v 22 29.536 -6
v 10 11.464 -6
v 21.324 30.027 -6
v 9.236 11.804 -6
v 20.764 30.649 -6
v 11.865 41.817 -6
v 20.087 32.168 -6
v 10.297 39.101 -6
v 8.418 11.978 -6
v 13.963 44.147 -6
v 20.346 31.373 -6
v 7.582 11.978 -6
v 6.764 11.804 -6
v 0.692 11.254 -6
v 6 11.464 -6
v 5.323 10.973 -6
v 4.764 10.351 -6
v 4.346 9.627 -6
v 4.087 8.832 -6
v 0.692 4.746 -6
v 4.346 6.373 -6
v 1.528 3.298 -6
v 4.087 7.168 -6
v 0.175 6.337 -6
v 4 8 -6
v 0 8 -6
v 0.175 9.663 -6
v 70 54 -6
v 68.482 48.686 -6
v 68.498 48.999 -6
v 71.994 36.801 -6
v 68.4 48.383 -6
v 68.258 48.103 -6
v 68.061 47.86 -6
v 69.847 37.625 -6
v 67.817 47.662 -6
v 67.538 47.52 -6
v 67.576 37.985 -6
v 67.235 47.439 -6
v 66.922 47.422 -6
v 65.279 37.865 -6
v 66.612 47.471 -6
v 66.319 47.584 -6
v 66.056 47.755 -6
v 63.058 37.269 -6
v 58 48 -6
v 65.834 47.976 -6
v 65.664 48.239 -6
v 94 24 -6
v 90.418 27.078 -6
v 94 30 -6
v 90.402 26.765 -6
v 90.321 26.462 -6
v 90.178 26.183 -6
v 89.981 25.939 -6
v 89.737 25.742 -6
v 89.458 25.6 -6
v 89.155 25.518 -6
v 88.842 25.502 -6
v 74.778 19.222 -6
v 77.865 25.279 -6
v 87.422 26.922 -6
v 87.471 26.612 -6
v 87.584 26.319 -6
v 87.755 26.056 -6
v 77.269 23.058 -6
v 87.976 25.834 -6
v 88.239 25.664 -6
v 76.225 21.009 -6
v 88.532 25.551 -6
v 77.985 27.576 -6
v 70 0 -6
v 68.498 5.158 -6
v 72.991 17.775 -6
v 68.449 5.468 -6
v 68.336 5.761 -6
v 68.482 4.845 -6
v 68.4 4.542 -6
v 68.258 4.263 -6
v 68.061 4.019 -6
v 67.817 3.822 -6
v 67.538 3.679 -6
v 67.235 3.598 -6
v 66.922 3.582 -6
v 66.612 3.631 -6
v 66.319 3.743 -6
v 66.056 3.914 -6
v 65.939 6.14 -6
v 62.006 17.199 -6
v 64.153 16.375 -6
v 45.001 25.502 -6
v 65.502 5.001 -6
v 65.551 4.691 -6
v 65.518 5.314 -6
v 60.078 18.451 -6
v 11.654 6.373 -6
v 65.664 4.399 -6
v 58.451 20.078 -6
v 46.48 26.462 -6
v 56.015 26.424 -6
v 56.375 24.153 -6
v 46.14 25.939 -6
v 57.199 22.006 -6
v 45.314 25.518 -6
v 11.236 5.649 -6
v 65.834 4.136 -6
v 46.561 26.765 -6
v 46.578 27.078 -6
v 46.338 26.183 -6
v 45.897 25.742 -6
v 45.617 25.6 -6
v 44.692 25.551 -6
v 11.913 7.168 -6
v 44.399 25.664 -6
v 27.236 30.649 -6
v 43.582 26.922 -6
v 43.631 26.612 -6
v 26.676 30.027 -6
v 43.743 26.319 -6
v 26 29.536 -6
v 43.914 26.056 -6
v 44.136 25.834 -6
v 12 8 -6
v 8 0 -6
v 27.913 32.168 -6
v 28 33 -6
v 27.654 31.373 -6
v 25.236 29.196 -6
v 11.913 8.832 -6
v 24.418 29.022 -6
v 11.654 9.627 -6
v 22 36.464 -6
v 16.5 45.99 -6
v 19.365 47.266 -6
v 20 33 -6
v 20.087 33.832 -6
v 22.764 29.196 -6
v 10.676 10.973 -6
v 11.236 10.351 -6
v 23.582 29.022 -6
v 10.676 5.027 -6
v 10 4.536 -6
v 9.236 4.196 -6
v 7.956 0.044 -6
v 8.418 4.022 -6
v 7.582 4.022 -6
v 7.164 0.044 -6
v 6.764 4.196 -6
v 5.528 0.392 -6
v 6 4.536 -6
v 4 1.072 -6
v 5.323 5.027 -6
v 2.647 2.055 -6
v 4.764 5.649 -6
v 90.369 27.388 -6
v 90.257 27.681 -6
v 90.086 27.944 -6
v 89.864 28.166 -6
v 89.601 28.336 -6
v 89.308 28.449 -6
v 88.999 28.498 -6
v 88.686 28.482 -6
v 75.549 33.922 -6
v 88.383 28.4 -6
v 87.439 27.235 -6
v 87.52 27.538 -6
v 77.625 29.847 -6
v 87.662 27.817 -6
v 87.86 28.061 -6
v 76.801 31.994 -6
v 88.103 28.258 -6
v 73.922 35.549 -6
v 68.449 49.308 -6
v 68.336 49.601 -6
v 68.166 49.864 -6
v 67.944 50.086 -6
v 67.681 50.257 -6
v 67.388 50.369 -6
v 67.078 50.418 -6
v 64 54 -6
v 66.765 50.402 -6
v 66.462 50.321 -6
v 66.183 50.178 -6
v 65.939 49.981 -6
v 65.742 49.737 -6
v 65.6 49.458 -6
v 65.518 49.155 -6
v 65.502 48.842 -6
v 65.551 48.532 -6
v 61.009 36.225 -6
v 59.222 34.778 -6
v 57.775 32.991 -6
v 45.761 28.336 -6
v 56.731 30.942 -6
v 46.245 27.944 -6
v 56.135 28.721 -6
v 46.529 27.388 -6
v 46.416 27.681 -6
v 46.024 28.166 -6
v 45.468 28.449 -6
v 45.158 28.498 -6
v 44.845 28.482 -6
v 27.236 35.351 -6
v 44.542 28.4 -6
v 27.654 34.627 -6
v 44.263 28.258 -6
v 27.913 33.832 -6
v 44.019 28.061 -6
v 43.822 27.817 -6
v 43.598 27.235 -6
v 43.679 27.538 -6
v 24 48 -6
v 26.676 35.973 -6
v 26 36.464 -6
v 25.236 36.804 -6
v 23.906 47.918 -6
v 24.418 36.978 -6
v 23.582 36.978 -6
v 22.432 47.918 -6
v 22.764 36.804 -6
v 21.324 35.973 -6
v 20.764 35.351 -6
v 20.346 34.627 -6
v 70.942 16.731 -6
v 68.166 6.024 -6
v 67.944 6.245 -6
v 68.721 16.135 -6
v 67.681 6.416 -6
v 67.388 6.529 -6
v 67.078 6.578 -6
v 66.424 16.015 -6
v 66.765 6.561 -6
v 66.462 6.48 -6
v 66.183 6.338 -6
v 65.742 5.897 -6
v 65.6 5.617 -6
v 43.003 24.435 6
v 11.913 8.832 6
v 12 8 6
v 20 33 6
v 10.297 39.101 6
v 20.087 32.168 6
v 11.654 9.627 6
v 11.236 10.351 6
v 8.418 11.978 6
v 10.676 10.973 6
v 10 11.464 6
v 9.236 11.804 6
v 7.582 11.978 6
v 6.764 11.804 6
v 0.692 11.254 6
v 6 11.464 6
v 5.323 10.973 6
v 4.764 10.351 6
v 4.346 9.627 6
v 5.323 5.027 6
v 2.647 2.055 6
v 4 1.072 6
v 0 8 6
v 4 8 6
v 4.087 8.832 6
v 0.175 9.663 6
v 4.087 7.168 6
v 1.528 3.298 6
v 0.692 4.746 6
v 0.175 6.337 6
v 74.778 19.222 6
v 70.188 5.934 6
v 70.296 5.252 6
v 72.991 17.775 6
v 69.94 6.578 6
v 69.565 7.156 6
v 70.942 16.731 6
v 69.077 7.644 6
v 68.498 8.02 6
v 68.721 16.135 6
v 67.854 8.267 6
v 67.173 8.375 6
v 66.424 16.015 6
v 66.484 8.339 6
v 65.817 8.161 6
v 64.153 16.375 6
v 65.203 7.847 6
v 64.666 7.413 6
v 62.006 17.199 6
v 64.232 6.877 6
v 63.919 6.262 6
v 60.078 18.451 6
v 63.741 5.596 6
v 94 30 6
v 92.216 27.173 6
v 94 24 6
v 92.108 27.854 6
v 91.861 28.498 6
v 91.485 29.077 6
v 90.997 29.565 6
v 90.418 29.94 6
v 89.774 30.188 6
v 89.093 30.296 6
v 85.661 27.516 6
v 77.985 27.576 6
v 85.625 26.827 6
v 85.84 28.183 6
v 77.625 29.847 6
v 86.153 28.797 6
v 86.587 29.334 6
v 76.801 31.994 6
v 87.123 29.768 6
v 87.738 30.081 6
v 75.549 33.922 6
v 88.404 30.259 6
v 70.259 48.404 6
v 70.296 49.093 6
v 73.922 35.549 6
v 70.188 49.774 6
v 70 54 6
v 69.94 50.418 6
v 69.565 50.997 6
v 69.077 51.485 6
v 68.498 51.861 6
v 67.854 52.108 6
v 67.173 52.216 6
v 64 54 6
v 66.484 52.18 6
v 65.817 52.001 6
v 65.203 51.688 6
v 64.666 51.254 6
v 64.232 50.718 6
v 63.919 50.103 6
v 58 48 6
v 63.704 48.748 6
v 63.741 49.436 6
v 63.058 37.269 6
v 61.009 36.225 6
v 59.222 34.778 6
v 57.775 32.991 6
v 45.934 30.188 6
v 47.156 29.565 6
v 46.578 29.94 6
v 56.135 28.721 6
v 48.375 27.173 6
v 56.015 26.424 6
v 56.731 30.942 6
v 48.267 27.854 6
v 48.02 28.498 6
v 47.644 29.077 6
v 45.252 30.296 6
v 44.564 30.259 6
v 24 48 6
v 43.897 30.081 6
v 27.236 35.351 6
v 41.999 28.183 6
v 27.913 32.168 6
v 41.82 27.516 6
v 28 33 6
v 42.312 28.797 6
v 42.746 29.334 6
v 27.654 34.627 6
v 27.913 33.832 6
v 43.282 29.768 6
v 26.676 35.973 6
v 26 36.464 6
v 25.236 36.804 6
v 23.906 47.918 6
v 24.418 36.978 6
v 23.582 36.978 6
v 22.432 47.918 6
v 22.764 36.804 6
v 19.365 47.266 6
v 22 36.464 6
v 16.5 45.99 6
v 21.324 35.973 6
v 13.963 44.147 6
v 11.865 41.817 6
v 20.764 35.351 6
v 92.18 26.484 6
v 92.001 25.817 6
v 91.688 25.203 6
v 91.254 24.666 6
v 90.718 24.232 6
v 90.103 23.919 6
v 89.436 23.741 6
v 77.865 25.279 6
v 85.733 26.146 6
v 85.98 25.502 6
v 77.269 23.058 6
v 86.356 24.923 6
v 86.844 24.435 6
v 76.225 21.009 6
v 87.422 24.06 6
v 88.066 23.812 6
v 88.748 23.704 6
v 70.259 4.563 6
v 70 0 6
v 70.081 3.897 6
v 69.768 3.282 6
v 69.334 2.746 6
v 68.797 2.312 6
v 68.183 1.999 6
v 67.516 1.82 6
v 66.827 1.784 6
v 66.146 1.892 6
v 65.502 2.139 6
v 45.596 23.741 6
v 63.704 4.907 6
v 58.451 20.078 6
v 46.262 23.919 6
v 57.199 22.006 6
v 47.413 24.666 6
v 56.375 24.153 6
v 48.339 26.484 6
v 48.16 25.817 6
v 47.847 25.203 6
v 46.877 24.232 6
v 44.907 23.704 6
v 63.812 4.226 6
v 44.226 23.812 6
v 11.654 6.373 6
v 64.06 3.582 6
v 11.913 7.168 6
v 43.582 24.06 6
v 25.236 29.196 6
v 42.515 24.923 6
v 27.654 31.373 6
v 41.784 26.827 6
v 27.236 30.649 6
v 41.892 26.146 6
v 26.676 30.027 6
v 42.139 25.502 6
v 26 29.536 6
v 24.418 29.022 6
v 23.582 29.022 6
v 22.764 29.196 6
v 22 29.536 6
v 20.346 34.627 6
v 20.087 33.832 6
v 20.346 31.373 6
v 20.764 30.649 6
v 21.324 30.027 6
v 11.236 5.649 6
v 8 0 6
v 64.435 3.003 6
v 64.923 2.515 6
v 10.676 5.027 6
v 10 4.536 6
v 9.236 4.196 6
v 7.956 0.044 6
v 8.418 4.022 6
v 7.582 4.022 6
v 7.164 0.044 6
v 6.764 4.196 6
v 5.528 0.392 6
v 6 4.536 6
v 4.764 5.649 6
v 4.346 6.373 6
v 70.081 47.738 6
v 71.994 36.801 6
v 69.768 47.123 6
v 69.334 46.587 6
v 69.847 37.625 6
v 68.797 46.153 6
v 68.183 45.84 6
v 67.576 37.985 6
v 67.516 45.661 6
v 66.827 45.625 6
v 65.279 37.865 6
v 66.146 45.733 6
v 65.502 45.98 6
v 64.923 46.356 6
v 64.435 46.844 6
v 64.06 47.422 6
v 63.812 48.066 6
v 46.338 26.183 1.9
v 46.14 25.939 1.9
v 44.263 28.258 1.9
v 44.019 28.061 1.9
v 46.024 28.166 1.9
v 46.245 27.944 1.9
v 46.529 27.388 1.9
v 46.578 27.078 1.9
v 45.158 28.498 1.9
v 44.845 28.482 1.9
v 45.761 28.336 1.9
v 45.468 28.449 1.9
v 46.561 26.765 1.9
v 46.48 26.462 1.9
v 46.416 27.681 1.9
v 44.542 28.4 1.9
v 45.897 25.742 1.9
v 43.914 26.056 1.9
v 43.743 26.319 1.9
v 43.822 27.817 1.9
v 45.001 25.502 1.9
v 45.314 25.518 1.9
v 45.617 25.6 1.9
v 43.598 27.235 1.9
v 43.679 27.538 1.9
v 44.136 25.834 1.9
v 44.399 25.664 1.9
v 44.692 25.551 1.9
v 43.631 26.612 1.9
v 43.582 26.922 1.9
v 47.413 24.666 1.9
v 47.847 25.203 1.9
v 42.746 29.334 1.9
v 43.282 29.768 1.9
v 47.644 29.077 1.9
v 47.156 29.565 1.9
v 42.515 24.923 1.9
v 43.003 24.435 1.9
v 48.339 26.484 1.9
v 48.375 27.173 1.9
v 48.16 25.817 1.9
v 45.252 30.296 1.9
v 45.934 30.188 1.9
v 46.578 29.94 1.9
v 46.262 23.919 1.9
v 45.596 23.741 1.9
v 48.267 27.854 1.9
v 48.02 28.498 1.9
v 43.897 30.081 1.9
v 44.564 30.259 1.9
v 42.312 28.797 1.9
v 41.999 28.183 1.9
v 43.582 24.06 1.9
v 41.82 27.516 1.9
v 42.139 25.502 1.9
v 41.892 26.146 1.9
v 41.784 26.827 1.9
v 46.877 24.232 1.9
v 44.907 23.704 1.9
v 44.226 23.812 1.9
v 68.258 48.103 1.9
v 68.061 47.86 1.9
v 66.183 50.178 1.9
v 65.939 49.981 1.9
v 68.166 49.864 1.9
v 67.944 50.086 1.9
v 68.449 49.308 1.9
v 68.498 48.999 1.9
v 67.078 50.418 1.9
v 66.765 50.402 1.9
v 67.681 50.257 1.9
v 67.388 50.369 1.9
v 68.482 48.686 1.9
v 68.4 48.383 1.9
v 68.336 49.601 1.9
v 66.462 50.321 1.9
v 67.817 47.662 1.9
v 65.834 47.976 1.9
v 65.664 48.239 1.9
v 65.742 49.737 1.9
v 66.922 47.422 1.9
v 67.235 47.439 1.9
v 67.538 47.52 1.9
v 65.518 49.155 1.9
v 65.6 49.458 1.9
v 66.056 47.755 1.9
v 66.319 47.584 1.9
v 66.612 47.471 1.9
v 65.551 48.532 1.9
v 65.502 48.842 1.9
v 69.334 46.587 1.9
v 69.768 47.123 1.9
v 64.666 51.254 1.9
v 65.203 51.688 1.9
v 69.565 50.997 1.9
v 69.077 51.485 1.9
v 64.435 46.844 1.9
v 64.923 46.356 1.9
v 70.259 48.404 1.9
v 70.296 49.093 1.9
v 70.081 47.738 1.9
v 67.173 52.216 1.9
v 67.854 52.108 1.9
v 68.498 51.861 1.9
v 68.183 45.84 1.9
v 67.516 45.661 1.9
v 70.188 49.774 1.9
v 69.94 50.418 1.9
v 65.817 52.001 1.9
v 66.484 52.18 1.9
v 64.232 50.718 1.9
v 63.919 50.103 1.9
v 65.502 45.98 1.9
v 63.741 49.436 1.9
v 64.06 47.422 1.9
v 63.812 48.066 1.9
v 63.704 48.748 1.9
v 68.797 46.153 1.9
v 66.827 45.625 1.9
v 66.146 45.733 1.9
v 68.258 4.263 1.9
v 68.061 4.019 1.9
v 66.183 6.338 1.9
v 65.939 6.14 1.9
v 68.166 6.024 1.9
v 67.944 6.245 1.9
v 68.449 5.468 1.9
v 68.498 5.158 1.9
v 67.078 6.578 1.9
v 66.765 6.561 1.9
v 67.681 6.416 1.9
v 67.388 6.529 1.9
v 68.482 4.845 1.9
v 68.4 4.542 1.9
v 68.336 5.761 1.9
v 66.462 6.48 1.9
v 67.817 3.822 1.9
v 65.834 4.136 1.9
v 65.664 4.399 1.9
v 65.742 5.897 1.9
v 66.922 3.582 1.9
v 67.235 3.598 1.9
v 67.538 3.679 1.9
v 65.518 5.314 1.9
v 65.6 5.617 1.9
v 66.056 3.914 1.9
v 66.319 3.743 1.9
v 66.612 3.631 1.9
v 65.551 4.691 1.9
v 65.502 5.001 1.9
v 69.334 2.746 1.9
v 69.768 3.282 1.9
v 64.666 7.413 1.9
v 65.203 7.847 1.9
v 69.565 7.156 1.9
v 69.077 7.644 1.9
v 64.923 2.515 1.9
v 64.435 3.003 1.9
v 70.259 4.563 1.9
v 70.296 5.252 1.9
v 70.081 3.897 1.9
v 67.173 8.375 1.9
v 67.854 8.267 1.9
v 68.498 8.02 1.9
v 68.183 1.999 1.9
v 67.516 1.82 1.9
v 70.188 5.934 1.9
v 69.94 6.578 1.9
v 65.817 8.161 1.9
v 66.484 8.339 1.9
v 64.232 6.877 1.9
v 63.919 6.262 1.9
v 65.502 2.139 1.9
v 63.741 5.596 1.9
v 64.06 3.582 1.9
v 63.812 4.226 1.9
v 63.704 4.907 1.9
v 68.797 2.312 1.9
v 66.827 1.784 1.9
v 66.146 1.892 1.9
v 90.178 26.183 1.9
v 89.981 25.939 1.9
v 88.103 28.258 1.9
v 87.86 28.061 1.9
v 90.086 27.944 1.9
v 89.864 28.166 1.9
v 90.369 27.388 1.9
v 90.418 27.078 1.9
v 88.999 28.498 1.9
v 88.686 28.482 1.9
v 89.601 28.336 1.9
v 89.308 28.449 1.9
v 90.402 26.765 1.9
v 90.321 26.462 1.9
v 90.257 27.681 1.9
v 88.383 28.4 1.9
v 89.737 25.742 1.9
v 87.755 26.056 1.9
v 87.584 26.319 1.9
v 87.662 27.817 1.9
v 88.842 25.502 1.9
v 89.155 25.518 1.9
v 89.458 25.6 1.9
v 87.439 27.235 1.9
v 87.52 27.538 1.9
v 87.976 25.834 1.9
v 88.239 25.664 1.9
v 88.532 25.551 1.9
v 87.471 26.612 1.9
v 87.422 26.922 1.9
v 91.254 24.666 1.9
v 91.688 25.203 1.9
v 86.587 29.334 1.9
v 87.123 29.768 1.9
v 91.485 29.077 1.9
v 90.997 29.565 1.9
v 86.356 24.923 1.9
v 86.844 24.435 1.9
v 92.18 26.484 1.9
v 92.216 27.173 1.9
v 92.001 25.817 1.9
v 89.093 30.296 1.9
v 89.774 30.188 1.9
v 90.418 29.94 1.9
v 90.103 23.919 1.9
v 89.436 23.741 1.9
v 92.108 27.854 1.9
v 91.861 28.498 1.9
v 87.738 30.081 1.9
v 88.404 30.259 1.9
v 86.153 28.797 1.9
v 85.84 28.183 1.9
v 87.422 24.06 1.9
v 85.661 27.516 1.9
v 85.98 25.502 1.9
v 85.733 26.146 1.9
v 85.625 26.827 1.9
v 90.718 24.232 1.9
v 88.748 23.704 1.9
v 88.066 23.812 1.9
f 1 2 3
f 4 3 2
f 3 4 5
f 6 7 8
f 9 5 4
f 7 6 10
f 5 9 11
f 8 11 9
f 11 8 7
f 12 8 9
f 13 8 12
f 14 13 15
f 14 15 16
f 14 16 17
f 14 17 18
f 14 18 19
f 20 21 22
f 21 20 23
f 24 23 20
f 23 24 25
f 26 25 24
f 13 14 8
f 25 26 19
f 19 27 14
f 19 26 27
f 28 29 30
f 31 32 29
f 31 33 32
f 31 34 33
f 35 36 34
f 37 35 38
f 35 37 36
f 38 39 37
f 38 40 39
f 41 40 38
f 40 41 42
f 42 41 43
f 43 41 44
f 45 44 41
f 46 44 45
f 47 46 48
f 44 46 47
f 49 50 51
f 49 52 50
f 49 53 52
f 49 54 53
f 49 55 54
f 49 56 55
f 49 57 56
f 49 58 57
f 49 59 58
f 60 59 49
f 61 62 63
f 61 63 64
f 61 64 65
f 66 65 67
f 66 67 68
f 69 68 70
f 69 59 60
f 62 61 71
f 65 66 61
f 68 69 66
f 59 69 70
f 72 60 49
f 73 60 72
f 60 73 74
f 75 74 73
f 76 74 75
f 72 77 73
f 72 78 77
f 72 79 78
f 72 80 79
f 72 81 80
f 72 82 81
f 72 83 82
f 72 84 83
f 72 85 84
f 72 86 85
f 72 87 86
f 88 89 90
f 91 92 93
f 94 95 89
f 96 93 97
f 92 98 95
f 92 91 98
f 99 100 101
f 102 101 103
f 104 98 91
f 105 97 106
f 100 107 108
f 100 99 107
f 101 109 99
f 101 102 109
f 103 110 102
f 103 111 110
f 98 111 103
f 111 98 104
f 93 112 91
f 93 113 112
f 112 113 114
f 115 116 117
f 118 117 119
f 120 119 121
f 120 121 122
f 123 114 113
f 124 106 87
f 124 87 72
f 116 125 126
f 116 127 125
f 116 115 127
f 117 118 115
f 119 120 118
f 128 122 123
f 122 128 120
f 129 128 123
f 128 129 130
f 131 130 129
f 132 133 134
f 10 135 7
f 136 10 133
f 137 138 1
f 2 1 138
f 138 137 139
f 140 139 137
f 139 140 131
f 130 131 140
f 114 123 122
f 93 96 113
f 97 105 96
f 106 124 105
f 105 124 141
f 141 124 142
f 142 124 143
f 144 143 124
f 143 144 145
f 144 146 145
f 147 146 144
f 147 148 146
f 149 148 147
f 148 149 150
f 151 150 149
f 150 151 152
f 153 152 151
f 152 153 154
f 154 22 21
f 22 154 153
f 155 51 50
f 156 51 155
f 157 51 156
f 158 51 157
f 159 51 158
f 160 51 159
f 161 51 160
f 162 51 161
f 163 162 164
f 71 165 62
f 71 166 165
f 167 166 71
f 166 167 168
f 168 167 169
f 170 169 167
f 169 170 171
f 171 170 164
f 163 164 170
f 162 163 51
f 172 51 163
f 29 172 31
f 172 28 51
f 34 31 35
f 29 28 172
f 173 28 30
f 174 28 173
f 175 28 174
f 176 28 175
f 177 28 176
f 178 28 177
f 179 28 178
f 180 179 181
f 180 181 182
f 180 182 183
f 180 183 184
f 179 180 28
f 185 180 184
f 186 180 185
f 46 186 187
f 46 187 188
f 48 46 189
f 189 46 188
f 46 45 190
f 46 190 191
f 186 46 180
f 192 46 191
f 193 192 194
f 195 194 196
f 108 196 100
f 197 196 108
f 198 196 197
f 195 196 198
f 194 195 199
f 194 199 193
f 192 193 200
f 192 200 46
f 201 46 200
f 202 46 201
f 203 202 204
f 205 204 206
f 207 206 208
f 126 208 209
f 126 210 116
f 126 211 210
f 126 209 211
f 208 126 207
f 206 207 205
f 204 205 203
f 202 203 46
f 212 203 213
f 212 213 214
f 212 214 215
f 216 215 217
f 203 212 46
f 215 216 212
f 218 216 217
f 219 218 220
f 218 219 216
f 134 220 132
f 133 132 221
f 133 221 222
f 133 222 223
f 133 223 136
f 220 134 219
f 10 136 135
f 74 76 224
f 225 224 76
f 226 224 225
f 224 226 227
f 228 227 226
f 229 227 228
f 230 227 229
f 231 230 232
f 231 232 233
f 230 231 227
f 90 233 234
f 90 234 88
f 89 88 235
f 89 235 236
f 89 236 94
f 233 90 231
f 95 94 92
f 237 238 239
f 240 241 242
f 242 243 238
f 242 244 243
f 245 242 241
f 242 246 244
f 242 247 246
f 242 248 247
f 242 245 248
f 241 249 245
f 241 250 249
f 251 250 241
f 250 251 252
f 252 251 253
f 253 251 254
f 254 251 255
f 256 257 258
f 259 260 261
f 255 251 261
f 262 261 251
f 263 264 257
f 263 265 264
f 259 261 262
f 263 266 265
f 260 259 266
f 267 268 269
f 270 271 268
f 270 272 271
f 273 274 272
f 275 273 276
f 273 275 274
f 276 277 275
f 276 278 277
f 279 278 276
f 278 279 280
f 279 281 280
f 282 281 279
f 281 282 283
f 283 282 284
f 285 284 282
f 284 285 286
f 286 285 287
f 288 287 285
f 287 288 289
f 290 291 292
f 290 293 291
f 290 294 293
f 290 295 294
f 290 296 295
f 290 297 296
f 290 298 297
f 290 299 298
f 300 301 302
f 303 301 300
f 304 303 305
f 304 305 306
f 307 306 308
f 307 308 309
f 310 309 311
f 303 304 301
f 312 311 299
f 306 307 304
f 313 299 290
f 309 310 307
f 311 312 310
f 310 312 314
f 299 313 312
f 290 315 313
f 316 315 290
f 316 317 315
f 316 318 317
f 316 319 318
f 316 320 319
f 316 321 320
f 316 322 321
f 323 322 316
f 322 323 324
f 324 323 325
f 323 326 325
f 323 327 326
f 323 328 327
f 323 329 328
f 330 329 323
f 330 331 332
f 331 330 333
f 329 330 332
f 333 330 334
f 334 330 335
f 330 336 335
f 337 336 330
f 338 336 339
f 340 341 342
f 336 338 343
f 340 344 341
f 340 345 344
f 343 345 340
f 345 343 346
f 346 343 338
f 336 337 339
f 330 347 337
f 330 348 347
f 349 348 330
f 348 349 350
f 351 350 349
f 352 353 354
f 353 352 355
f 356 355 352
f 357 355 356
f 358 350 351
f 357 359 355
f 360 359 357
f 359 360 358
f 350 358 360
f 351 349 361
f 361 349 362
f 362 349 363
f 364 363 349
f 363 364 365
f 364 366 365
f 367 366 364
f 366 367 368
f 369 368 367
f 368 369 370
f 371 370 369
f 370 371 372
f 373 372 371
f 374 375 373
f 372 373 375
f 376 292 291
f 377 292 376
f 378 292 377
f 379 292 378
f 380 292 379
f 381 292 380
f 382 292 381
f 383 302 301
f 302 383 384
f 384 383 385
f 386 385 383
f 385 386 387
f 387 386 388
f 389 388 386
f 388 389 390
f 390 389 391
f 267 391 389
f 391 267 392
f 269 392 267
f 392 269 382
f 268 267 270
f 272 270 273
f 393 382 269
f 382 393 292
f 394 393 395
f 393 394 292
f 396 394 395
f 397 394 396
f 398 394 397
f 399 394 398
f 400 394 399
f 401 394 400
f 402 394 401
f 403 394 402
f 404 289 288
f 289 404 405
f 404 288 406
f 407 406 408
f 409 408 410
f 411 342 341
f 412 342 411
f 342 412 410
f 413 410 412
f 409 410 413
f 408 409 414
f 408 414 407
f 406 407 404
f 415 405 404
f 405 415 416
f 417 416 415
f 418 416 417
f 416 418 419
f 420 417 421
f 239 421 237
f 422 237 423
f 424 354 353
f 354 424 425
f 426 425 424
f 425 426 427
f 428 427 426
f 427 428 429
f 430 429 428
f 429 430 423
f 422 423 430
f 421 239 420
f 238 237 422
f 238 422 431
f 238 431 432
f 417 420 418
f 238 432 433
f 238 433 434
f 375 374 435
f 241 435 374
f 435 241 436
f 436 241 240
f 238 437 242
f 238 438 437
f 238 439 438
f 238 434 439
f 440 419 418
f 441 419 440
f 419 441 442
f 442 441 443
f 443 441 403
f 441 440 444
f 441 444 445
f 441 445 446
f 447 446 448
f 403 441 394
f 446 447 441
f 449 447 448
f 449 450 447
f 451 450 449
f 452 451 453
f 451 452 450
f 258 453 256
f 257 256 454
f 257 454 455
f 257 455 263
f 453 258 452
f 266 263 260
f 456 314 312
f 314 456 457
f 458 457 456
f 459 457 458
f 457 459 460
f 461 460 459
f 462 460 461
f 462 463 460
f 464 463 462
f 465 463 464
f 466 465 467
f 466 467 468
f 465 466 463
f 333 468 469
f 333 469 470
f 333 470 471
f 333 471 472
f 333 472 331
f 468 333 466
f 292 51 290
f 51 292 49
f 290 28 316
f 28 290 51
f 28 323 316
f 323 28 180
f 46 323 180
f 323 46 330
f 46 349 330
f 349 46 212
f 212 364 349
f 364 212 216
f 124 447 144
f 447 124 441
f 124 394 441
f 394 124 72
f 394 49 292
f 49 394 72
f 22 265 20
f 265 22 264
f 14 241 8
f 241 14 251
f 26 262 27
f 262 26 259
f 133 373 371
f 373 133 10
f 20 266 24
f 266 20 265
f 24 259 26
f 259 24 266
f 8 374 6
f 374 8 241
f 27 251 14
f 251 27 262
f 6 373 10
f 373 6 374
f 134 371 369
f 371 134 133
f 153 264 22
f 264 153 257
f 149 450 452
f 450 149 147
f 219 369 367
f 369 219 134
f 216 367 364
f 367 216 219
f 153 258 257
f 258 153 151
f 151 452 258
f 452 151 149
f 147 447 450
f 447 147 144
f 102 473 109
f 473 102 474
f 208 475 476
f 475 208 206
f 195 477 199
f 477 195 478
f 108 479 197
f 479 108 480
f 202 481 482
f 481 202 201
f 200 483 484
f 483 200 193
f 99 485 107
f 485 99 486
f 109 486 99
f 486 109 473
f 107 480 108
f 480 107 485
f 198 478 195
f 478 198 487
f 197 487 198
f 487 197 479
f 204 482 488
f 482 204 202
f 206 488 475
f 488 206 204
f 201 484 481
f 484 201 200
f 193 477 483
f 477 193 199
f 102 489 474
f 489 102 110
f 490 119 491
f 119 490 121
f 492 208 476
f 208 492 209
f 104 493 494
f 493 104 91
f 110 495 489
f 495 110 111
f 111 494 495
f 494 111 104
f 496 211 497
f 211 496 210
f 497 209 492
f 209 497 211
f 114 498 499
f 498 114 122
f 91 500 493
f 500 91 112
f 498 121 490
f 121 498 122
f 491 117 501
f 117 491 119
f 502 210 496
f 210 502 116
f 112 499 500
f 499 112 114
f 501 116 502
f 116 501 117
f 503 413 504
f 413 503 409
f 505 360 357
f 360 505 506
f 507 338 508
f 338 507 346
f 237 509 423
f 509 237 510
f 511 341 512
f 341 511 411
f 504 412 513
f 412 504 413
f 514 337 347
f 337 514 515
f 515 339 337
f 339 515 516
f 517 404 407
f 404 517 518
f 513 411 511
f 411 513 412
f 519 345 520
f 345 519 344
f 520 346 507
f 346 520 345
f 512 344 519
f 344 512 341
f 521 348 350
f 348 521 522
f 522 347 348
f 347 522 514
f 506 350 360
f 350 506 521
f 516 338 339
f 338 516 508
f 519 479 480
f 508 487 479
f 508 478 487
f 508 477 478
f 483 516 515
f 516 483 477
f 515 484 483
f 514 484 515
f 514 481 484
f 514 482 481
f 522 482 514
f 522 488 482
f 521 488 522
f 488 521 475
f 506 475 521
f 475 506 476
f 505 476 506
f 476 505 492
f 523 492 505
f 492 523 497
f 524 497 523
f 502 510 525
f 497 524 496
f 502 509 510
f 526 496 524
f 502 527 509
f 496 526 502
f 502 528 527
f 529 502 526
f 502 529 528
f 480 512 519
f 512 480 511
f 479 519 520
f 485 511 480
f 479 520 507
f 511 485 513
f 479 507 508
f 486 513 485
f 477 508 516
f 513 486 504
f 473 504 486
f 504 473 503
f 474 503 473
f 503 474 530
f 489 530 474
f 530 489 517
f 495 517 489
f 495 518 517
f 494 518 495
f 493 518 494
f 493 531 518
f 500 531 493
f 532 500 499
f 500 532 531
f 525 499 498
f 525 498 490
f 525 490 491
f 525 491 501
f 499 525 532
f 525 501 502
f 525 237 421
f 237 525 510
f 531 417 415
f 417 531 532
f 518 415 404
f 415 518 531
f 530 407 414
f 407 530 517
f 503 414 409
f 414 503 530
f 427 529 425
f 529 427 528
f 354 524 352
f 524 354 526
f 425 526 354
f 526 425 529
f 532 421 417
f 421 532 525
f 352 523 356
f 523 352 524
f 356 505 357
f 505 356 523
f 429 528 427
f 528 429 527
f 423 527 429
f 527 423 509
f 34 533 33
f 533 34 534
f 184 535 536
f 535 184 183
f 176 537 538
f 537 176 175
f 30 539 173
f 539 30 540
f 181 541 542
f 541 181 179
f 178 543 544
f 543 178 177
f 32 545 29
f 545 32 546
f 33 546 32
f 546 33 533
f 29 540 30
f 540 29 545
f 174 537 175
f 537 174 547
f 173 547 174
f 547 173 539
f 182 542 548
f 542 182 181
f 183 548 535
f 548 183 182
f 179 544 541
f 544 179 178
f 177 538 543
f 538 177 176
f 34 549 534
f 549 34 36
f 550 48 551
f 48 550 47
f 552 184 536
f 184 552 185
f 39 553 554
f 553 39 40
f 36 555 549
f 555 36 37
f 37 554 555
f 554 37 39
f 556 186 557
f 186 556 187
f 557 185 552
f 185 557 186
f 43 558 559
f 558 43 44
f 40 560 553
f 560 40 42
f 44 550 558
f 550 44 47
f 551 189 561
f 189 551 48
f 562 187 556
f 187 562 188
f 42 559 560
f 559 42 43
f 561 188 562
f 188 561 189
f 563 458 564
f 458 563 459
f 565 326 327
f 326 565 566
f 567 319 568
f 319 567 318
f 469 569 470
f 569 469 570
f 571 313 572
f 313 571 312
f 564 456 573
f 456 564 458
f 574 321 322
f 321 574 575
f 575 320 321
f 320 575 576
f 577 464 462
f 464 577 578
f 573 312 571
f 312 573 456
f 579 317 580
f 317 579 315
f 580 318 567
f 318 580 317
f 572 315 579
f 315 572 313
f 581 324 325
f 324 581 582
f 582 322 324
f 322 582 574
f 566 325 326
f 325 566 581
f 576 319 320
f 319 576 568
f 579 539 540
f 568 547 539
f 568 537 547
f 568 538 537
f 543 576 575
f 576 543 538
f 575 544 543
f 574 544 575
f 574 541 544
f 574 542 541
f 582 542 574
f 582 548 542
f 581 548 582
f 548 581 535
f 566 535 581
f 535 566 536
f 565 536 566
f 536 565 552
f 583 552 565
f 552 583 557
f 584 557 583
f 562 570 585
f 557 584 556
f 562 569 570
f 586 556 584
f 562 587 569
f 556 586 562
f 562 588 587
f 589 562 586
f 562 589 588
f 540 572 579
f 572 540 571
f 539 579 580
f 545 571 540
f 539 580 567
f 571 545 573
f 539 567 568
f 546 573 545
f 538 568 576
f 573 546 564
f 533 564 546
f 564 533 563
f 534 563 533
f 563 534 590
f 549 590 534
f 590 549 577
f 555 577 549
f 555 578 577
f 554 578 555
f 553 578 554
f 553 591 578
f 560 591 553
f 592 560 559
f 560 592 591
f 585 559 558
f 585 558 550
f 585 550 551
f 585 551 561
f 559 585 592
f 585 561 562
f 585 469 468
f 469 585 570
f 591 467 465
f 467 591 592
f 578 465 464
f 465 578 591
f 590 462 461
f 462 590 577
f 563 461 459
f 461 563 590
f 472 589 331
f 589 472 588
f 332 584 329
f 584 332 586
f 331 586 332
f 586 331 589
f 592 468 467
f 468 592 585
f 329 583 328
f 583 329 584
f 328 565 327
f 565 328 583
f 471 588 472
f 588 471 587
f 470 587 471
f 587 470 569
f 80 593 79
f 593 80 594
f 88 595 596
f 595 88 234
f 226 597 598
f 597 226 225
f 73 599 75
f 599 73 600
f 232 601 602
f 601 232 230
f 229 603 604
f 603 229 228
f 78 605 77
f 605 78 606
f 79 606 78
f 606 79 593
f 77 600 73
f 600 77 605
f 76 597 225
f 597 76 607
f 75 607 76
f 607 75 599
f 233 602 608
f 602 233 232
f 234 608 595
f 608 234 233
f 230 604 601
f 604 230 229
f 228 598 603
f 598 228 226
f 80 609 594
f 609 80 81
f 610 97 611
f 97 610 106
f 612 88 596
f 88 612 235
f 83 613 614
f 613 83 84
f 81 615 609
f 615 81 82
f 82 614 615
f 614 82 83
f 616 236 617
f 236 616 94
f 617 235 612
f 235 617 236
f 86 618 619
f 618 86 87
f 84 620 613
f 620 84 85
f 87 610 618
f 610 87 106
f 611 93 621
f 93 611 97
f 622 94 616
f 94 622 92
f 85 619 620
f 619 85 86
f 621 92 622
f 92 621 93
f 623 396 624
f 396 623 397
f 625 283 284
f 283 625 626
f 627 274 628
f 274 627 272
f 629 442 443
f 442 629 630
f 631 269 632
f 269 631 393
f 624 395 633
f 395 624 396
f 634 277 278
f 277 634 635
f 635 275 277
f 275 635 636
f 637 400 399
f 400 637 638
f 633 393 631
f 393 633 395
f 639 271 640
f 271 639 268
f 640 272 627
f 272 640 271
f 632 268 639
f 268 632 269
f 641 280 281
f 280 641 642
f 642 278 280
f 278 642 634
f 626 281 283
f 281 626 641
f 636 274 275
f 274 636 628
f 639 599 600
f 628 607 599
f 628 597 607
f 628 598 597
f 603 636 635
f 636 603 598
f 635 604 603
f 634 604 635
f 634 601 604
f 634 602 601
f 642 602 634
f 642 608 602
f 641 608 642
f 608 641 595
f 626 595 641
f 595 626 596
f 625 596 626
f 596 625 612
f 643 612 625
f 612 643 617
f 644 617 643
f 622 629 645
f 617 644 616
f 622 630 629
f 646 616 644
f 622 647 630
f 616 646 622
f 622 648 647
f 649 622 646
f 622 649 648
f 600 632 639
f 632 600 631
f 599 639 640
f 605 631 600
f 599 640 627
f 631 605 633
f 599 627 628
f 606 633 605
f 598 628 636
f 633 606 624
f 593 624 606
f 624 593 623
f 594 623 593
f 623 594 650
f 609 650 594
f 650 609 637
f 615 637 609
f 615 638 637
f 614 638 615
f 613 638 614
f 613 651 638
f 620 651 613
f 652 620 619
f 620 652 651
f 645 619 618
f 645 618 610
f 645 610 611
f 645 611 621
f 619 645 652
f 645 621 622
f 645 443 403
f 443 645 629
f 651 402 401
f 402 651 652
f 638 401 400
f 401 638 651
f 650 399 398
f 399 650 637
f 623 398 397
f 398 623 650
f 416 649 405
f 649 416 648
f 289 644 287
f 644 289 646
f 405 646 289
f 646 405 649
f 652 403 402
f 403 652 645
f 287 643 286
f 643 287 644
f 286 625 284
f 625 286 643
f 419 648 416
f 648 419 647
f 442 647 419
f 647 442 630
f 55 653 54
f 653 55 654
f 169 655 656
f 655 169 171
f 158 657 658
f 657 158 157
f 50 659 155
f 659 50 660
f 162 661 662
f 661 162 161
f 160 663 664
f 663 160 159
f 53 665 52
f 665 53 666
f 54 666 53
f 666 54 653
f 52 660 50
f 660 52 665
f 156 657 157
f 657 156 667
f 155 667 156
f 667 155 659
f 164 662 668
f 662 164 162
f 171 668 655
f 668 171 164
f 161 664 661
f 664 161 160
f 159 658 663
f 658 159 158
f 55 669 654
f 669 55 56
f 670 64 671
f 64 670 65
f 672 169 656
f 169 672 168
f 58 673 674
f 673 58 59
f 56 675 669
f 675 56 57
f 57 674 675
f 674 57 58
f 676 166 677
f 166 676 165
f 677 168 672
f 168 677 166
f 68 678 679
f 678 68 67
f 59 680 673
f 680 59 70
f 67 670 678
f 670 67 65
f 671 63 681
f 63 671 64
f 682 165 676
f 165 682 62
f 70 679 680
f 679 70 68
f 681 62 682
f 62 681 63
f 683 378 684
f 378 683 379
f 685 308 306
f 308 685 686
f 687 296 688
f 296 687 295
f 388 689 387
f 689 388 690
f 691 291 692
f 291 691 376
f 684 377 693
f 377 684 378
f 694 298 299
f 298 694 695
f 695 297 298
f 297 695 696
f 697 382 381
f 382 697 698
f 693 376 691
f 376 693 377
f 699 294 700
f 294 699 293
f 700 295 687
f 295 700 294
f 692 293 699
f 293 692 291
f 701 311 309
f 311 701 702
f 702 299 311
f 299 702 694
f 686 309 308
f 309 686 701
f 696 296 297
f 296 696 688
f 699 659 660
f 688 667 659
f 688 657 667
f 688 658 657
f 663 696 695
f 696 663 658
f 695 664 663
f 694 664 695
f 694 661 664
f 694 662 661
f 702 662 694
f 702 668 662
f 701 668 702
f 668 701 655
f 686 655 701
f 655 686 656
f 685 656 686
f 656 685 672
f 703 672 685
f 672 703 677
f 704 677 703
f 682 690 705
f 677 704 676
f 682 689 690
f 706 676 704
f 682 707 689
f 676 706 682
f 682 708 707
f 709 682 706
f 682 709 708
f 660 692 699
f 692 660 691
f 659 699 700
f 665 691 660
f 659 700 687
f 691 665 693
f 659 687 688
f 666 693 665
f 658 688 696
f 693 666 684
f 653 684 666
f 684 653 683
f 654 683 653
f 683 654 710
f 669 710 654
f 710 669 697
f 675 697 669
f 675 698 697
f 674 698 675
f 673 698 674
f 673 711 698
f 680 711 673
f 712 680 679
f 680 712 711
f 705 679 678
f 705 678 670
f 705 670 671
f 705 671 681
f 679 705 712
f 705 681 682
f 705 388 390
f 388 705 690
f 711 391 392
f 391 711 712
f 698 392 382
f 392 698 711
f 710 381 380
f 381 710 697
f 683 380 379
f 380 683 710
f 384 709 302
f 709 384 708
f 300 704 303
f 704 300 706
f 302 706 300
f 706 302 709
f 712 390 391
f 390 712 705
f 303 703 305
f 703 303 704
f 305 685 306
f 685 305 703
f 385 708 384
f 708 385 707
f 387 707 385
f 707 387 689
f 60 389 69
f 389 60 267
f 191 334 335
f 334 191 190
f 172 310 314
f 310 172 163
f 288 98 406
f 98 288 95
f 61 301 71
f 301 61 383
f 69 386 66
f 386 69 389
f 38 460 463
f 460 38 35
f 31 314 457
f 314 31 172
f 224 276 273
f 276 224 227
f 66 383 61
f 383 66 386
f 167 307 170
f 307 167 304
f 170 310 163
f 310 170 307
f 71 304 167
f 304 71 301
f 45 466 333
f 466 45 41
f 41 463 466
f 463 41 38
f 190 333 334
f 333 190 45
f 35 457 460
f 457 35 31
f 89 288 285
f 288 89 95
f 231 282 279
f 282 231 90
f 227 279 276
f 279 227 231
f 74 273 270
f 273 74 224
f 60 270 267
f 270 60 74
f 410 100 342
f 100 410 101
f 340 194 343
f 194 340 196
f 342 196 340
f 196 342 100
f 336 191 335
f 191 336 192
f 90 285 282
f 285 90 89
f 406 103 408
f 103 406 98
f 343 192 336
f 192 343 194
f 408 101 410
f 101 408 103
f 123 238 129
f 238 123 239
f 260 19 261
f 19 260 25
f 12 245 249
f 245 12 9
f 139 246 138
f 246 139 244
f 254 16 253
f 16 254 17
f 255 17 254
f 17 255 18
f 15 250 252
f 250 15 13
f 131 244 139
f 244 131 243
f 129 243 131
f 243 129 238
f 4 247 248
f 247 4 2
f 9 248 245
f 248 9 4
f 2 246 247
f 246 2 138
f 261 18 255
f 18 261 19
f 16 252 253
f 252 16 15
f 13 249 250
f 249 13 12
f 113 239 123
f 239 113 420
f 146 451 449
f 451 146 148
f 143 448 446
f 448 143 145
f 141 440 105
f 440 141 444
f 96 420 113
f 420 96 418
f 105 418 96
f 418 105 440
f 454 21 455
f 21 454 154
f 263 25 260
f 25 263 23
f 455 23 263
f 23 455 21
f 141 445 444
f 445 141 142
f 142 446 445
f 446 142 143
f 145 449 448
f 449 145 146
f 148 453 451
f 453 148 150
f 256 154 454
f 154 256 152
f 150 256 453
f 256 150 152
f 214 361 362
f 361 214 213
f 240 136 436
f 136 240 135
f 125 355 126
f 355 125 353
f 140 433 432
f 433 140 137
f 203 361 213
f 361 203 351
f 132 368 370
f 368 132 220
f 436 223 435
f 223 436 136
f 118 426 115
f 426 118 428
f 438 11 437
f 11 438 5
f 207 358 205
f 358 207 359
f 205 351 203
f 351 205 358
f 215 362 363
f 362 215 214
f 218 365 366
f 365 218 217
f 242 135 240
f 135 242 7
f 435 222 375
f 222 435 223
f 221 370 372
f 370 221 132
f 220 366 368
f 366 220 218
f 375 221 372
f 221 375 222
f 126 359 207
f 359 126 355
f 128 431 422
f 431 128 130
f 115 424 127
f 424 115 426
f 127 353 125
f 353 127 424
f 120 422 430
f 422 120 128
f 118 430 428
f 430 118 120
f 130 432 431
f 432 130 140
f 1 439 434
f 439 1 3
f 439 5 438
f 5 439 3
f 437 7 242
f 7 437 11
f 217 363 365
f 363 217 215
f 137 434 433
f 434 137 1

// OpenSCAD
// file: ../abs/lib/halfcube.scad
// библиотечная функция - прямоугольная призма
/*
 * a - вектор [x,y,z] - куб, в который вписана призма
 * orient - строка "x"/"y"/"z" - ориентация треугольной грани призмы
 * center - логическое true/false - позиционирование относительно центра или с угла
 *
 * Автор - Andrew Answer (Андрей Нуждов): http://answe.ru
 * Сделано для проекта SibRap: http://reprap.org/wiki/SibRap
 * GitHub: https://github.com/andrewanswer/sibrap
 */
module halfcube(a, orient, center) {
	translate(center==true?-a/2:0) {
		if (orient=="x")
			polyhedron (points = [[a[0],0,a[2]], [0,0,a[2]], [0,a[1],0], [0,0,0], [a[0],0,0], [a[0],a[1],0]], faces = [[1,3,2], [4,0,5], [3,1,4], [1,2,5], [1,0,4], [0,1,5],  [5,2,4], [4,2,3]]);
		if (orient=="y")
			polyhedron (points = [[0,a[1],a[2]], [0,0,a[2]], [0,a[1],0], [0,0,0], [a[0],0,0], [a[0],a[1],0]], faces = [[1,3,2], [1,2,0], [3,1,4], [0,2,5], [1,5,4], [1,0,5],  [5,2,4], [4,2,3]]);
		if (orient=="z")
			polyhedron (points = [[0,a[1],a[2]], [0,0,a[2]], [0,a[1],0], [0,0,0], [a[0],0,0], [a[0],0,a[2]]], faces = [[1,3,2], [1,2,0], [3,1,4], [0,2,5], [1,5,4], [1,0,5],  [5,2,4], [4,2,3]]);
	}
}

// test
/*
halfcube([10,20,30],"x",true);
halfcube([10,20,30],"y",true);
halfcube([10,20,30],"z",false);
*/
// main file
use <../abs/lib/halfcube.scad>

// габариты
// ширина
x0=94;
// высота
y0=54;
// толщина
z0=12;

// от левого нижнего угла детали
// до первого отверстия по X
x1=8;
// до первого отверстия по Y
y1=8;
// до оси двигателя по X
x2=x0-27;
// до оси двигателя по Y
y2=27;

// между первым и вторым отверстием по X
x3=16;
// между первым и вторым отверстием по Y
y3=25;

// между отверстиями крепления двигателя
dx=31;

$fn=30;
DELTA=0.1;

module part13() {
difference() {
    //linear_extrude(height=8, center=true)polygon(points=[[0,0], [0,13.36], [18.97,39.94], [98-30.99-9.32,y0], [98-30.99,y0], [98,35.46], [77.53,0]], paths=[[0,1,2,3,4,5,6]]);
    union() {
        linear_extrude(height=z0, center=true)
        polygon(points=[[x1,0], [0,x1], [0.45,10], [9.15,y1+y3+2], [x1+x3,y0-6], [x2-9,y0-6], [x2-3,y0], [x0-24,y0], [x0,y0-24], [x0,24], [x0-24,0]], paths=[[0,1,2,3,4,5,6,7,8,9,10]]);
        hull() {
            translate([x1,y1,-z0/2])cylinder(r=16/2,h=z0);
            translate([x1+x3,y1+y3,-z0/2])cylinder(r=30/2,h=z0);
        }
    }
    translate([x1,y1,-z0/2-DELTA]) {
        cylinder(r=4,h=z0+DELTA*2);
        translate([x3,y3,0])cylinder(r=4,h=z0+DELTA*2);
        translate([x2-x1,y2-y1,0])rotate([0,0,-45]){
            cylinder(r=11,h=z0+DELTA*2);
            translate([-dx/2,-dx/2,0])hole();
            translate([-dx/2,dx/2,0])hole();
            translate([dx/2,-dx/2,0])hole();
            translate([dx/2,dx/2,0])hole();
        }
    }
}
}

module hole() {
  cylinder(r=1.5,h=z0+DELTA*2);
  translate([0,0,8])cylinder(r=3.3,h=z0-8+DELTA*2);
}


module motor() {
intersection(){
    cube([42,42,8],true);
    rotate([0,0,45])cube([38*sqrt(2),38*sqrt(2),8],true);
}
}
//projection()
part13();
